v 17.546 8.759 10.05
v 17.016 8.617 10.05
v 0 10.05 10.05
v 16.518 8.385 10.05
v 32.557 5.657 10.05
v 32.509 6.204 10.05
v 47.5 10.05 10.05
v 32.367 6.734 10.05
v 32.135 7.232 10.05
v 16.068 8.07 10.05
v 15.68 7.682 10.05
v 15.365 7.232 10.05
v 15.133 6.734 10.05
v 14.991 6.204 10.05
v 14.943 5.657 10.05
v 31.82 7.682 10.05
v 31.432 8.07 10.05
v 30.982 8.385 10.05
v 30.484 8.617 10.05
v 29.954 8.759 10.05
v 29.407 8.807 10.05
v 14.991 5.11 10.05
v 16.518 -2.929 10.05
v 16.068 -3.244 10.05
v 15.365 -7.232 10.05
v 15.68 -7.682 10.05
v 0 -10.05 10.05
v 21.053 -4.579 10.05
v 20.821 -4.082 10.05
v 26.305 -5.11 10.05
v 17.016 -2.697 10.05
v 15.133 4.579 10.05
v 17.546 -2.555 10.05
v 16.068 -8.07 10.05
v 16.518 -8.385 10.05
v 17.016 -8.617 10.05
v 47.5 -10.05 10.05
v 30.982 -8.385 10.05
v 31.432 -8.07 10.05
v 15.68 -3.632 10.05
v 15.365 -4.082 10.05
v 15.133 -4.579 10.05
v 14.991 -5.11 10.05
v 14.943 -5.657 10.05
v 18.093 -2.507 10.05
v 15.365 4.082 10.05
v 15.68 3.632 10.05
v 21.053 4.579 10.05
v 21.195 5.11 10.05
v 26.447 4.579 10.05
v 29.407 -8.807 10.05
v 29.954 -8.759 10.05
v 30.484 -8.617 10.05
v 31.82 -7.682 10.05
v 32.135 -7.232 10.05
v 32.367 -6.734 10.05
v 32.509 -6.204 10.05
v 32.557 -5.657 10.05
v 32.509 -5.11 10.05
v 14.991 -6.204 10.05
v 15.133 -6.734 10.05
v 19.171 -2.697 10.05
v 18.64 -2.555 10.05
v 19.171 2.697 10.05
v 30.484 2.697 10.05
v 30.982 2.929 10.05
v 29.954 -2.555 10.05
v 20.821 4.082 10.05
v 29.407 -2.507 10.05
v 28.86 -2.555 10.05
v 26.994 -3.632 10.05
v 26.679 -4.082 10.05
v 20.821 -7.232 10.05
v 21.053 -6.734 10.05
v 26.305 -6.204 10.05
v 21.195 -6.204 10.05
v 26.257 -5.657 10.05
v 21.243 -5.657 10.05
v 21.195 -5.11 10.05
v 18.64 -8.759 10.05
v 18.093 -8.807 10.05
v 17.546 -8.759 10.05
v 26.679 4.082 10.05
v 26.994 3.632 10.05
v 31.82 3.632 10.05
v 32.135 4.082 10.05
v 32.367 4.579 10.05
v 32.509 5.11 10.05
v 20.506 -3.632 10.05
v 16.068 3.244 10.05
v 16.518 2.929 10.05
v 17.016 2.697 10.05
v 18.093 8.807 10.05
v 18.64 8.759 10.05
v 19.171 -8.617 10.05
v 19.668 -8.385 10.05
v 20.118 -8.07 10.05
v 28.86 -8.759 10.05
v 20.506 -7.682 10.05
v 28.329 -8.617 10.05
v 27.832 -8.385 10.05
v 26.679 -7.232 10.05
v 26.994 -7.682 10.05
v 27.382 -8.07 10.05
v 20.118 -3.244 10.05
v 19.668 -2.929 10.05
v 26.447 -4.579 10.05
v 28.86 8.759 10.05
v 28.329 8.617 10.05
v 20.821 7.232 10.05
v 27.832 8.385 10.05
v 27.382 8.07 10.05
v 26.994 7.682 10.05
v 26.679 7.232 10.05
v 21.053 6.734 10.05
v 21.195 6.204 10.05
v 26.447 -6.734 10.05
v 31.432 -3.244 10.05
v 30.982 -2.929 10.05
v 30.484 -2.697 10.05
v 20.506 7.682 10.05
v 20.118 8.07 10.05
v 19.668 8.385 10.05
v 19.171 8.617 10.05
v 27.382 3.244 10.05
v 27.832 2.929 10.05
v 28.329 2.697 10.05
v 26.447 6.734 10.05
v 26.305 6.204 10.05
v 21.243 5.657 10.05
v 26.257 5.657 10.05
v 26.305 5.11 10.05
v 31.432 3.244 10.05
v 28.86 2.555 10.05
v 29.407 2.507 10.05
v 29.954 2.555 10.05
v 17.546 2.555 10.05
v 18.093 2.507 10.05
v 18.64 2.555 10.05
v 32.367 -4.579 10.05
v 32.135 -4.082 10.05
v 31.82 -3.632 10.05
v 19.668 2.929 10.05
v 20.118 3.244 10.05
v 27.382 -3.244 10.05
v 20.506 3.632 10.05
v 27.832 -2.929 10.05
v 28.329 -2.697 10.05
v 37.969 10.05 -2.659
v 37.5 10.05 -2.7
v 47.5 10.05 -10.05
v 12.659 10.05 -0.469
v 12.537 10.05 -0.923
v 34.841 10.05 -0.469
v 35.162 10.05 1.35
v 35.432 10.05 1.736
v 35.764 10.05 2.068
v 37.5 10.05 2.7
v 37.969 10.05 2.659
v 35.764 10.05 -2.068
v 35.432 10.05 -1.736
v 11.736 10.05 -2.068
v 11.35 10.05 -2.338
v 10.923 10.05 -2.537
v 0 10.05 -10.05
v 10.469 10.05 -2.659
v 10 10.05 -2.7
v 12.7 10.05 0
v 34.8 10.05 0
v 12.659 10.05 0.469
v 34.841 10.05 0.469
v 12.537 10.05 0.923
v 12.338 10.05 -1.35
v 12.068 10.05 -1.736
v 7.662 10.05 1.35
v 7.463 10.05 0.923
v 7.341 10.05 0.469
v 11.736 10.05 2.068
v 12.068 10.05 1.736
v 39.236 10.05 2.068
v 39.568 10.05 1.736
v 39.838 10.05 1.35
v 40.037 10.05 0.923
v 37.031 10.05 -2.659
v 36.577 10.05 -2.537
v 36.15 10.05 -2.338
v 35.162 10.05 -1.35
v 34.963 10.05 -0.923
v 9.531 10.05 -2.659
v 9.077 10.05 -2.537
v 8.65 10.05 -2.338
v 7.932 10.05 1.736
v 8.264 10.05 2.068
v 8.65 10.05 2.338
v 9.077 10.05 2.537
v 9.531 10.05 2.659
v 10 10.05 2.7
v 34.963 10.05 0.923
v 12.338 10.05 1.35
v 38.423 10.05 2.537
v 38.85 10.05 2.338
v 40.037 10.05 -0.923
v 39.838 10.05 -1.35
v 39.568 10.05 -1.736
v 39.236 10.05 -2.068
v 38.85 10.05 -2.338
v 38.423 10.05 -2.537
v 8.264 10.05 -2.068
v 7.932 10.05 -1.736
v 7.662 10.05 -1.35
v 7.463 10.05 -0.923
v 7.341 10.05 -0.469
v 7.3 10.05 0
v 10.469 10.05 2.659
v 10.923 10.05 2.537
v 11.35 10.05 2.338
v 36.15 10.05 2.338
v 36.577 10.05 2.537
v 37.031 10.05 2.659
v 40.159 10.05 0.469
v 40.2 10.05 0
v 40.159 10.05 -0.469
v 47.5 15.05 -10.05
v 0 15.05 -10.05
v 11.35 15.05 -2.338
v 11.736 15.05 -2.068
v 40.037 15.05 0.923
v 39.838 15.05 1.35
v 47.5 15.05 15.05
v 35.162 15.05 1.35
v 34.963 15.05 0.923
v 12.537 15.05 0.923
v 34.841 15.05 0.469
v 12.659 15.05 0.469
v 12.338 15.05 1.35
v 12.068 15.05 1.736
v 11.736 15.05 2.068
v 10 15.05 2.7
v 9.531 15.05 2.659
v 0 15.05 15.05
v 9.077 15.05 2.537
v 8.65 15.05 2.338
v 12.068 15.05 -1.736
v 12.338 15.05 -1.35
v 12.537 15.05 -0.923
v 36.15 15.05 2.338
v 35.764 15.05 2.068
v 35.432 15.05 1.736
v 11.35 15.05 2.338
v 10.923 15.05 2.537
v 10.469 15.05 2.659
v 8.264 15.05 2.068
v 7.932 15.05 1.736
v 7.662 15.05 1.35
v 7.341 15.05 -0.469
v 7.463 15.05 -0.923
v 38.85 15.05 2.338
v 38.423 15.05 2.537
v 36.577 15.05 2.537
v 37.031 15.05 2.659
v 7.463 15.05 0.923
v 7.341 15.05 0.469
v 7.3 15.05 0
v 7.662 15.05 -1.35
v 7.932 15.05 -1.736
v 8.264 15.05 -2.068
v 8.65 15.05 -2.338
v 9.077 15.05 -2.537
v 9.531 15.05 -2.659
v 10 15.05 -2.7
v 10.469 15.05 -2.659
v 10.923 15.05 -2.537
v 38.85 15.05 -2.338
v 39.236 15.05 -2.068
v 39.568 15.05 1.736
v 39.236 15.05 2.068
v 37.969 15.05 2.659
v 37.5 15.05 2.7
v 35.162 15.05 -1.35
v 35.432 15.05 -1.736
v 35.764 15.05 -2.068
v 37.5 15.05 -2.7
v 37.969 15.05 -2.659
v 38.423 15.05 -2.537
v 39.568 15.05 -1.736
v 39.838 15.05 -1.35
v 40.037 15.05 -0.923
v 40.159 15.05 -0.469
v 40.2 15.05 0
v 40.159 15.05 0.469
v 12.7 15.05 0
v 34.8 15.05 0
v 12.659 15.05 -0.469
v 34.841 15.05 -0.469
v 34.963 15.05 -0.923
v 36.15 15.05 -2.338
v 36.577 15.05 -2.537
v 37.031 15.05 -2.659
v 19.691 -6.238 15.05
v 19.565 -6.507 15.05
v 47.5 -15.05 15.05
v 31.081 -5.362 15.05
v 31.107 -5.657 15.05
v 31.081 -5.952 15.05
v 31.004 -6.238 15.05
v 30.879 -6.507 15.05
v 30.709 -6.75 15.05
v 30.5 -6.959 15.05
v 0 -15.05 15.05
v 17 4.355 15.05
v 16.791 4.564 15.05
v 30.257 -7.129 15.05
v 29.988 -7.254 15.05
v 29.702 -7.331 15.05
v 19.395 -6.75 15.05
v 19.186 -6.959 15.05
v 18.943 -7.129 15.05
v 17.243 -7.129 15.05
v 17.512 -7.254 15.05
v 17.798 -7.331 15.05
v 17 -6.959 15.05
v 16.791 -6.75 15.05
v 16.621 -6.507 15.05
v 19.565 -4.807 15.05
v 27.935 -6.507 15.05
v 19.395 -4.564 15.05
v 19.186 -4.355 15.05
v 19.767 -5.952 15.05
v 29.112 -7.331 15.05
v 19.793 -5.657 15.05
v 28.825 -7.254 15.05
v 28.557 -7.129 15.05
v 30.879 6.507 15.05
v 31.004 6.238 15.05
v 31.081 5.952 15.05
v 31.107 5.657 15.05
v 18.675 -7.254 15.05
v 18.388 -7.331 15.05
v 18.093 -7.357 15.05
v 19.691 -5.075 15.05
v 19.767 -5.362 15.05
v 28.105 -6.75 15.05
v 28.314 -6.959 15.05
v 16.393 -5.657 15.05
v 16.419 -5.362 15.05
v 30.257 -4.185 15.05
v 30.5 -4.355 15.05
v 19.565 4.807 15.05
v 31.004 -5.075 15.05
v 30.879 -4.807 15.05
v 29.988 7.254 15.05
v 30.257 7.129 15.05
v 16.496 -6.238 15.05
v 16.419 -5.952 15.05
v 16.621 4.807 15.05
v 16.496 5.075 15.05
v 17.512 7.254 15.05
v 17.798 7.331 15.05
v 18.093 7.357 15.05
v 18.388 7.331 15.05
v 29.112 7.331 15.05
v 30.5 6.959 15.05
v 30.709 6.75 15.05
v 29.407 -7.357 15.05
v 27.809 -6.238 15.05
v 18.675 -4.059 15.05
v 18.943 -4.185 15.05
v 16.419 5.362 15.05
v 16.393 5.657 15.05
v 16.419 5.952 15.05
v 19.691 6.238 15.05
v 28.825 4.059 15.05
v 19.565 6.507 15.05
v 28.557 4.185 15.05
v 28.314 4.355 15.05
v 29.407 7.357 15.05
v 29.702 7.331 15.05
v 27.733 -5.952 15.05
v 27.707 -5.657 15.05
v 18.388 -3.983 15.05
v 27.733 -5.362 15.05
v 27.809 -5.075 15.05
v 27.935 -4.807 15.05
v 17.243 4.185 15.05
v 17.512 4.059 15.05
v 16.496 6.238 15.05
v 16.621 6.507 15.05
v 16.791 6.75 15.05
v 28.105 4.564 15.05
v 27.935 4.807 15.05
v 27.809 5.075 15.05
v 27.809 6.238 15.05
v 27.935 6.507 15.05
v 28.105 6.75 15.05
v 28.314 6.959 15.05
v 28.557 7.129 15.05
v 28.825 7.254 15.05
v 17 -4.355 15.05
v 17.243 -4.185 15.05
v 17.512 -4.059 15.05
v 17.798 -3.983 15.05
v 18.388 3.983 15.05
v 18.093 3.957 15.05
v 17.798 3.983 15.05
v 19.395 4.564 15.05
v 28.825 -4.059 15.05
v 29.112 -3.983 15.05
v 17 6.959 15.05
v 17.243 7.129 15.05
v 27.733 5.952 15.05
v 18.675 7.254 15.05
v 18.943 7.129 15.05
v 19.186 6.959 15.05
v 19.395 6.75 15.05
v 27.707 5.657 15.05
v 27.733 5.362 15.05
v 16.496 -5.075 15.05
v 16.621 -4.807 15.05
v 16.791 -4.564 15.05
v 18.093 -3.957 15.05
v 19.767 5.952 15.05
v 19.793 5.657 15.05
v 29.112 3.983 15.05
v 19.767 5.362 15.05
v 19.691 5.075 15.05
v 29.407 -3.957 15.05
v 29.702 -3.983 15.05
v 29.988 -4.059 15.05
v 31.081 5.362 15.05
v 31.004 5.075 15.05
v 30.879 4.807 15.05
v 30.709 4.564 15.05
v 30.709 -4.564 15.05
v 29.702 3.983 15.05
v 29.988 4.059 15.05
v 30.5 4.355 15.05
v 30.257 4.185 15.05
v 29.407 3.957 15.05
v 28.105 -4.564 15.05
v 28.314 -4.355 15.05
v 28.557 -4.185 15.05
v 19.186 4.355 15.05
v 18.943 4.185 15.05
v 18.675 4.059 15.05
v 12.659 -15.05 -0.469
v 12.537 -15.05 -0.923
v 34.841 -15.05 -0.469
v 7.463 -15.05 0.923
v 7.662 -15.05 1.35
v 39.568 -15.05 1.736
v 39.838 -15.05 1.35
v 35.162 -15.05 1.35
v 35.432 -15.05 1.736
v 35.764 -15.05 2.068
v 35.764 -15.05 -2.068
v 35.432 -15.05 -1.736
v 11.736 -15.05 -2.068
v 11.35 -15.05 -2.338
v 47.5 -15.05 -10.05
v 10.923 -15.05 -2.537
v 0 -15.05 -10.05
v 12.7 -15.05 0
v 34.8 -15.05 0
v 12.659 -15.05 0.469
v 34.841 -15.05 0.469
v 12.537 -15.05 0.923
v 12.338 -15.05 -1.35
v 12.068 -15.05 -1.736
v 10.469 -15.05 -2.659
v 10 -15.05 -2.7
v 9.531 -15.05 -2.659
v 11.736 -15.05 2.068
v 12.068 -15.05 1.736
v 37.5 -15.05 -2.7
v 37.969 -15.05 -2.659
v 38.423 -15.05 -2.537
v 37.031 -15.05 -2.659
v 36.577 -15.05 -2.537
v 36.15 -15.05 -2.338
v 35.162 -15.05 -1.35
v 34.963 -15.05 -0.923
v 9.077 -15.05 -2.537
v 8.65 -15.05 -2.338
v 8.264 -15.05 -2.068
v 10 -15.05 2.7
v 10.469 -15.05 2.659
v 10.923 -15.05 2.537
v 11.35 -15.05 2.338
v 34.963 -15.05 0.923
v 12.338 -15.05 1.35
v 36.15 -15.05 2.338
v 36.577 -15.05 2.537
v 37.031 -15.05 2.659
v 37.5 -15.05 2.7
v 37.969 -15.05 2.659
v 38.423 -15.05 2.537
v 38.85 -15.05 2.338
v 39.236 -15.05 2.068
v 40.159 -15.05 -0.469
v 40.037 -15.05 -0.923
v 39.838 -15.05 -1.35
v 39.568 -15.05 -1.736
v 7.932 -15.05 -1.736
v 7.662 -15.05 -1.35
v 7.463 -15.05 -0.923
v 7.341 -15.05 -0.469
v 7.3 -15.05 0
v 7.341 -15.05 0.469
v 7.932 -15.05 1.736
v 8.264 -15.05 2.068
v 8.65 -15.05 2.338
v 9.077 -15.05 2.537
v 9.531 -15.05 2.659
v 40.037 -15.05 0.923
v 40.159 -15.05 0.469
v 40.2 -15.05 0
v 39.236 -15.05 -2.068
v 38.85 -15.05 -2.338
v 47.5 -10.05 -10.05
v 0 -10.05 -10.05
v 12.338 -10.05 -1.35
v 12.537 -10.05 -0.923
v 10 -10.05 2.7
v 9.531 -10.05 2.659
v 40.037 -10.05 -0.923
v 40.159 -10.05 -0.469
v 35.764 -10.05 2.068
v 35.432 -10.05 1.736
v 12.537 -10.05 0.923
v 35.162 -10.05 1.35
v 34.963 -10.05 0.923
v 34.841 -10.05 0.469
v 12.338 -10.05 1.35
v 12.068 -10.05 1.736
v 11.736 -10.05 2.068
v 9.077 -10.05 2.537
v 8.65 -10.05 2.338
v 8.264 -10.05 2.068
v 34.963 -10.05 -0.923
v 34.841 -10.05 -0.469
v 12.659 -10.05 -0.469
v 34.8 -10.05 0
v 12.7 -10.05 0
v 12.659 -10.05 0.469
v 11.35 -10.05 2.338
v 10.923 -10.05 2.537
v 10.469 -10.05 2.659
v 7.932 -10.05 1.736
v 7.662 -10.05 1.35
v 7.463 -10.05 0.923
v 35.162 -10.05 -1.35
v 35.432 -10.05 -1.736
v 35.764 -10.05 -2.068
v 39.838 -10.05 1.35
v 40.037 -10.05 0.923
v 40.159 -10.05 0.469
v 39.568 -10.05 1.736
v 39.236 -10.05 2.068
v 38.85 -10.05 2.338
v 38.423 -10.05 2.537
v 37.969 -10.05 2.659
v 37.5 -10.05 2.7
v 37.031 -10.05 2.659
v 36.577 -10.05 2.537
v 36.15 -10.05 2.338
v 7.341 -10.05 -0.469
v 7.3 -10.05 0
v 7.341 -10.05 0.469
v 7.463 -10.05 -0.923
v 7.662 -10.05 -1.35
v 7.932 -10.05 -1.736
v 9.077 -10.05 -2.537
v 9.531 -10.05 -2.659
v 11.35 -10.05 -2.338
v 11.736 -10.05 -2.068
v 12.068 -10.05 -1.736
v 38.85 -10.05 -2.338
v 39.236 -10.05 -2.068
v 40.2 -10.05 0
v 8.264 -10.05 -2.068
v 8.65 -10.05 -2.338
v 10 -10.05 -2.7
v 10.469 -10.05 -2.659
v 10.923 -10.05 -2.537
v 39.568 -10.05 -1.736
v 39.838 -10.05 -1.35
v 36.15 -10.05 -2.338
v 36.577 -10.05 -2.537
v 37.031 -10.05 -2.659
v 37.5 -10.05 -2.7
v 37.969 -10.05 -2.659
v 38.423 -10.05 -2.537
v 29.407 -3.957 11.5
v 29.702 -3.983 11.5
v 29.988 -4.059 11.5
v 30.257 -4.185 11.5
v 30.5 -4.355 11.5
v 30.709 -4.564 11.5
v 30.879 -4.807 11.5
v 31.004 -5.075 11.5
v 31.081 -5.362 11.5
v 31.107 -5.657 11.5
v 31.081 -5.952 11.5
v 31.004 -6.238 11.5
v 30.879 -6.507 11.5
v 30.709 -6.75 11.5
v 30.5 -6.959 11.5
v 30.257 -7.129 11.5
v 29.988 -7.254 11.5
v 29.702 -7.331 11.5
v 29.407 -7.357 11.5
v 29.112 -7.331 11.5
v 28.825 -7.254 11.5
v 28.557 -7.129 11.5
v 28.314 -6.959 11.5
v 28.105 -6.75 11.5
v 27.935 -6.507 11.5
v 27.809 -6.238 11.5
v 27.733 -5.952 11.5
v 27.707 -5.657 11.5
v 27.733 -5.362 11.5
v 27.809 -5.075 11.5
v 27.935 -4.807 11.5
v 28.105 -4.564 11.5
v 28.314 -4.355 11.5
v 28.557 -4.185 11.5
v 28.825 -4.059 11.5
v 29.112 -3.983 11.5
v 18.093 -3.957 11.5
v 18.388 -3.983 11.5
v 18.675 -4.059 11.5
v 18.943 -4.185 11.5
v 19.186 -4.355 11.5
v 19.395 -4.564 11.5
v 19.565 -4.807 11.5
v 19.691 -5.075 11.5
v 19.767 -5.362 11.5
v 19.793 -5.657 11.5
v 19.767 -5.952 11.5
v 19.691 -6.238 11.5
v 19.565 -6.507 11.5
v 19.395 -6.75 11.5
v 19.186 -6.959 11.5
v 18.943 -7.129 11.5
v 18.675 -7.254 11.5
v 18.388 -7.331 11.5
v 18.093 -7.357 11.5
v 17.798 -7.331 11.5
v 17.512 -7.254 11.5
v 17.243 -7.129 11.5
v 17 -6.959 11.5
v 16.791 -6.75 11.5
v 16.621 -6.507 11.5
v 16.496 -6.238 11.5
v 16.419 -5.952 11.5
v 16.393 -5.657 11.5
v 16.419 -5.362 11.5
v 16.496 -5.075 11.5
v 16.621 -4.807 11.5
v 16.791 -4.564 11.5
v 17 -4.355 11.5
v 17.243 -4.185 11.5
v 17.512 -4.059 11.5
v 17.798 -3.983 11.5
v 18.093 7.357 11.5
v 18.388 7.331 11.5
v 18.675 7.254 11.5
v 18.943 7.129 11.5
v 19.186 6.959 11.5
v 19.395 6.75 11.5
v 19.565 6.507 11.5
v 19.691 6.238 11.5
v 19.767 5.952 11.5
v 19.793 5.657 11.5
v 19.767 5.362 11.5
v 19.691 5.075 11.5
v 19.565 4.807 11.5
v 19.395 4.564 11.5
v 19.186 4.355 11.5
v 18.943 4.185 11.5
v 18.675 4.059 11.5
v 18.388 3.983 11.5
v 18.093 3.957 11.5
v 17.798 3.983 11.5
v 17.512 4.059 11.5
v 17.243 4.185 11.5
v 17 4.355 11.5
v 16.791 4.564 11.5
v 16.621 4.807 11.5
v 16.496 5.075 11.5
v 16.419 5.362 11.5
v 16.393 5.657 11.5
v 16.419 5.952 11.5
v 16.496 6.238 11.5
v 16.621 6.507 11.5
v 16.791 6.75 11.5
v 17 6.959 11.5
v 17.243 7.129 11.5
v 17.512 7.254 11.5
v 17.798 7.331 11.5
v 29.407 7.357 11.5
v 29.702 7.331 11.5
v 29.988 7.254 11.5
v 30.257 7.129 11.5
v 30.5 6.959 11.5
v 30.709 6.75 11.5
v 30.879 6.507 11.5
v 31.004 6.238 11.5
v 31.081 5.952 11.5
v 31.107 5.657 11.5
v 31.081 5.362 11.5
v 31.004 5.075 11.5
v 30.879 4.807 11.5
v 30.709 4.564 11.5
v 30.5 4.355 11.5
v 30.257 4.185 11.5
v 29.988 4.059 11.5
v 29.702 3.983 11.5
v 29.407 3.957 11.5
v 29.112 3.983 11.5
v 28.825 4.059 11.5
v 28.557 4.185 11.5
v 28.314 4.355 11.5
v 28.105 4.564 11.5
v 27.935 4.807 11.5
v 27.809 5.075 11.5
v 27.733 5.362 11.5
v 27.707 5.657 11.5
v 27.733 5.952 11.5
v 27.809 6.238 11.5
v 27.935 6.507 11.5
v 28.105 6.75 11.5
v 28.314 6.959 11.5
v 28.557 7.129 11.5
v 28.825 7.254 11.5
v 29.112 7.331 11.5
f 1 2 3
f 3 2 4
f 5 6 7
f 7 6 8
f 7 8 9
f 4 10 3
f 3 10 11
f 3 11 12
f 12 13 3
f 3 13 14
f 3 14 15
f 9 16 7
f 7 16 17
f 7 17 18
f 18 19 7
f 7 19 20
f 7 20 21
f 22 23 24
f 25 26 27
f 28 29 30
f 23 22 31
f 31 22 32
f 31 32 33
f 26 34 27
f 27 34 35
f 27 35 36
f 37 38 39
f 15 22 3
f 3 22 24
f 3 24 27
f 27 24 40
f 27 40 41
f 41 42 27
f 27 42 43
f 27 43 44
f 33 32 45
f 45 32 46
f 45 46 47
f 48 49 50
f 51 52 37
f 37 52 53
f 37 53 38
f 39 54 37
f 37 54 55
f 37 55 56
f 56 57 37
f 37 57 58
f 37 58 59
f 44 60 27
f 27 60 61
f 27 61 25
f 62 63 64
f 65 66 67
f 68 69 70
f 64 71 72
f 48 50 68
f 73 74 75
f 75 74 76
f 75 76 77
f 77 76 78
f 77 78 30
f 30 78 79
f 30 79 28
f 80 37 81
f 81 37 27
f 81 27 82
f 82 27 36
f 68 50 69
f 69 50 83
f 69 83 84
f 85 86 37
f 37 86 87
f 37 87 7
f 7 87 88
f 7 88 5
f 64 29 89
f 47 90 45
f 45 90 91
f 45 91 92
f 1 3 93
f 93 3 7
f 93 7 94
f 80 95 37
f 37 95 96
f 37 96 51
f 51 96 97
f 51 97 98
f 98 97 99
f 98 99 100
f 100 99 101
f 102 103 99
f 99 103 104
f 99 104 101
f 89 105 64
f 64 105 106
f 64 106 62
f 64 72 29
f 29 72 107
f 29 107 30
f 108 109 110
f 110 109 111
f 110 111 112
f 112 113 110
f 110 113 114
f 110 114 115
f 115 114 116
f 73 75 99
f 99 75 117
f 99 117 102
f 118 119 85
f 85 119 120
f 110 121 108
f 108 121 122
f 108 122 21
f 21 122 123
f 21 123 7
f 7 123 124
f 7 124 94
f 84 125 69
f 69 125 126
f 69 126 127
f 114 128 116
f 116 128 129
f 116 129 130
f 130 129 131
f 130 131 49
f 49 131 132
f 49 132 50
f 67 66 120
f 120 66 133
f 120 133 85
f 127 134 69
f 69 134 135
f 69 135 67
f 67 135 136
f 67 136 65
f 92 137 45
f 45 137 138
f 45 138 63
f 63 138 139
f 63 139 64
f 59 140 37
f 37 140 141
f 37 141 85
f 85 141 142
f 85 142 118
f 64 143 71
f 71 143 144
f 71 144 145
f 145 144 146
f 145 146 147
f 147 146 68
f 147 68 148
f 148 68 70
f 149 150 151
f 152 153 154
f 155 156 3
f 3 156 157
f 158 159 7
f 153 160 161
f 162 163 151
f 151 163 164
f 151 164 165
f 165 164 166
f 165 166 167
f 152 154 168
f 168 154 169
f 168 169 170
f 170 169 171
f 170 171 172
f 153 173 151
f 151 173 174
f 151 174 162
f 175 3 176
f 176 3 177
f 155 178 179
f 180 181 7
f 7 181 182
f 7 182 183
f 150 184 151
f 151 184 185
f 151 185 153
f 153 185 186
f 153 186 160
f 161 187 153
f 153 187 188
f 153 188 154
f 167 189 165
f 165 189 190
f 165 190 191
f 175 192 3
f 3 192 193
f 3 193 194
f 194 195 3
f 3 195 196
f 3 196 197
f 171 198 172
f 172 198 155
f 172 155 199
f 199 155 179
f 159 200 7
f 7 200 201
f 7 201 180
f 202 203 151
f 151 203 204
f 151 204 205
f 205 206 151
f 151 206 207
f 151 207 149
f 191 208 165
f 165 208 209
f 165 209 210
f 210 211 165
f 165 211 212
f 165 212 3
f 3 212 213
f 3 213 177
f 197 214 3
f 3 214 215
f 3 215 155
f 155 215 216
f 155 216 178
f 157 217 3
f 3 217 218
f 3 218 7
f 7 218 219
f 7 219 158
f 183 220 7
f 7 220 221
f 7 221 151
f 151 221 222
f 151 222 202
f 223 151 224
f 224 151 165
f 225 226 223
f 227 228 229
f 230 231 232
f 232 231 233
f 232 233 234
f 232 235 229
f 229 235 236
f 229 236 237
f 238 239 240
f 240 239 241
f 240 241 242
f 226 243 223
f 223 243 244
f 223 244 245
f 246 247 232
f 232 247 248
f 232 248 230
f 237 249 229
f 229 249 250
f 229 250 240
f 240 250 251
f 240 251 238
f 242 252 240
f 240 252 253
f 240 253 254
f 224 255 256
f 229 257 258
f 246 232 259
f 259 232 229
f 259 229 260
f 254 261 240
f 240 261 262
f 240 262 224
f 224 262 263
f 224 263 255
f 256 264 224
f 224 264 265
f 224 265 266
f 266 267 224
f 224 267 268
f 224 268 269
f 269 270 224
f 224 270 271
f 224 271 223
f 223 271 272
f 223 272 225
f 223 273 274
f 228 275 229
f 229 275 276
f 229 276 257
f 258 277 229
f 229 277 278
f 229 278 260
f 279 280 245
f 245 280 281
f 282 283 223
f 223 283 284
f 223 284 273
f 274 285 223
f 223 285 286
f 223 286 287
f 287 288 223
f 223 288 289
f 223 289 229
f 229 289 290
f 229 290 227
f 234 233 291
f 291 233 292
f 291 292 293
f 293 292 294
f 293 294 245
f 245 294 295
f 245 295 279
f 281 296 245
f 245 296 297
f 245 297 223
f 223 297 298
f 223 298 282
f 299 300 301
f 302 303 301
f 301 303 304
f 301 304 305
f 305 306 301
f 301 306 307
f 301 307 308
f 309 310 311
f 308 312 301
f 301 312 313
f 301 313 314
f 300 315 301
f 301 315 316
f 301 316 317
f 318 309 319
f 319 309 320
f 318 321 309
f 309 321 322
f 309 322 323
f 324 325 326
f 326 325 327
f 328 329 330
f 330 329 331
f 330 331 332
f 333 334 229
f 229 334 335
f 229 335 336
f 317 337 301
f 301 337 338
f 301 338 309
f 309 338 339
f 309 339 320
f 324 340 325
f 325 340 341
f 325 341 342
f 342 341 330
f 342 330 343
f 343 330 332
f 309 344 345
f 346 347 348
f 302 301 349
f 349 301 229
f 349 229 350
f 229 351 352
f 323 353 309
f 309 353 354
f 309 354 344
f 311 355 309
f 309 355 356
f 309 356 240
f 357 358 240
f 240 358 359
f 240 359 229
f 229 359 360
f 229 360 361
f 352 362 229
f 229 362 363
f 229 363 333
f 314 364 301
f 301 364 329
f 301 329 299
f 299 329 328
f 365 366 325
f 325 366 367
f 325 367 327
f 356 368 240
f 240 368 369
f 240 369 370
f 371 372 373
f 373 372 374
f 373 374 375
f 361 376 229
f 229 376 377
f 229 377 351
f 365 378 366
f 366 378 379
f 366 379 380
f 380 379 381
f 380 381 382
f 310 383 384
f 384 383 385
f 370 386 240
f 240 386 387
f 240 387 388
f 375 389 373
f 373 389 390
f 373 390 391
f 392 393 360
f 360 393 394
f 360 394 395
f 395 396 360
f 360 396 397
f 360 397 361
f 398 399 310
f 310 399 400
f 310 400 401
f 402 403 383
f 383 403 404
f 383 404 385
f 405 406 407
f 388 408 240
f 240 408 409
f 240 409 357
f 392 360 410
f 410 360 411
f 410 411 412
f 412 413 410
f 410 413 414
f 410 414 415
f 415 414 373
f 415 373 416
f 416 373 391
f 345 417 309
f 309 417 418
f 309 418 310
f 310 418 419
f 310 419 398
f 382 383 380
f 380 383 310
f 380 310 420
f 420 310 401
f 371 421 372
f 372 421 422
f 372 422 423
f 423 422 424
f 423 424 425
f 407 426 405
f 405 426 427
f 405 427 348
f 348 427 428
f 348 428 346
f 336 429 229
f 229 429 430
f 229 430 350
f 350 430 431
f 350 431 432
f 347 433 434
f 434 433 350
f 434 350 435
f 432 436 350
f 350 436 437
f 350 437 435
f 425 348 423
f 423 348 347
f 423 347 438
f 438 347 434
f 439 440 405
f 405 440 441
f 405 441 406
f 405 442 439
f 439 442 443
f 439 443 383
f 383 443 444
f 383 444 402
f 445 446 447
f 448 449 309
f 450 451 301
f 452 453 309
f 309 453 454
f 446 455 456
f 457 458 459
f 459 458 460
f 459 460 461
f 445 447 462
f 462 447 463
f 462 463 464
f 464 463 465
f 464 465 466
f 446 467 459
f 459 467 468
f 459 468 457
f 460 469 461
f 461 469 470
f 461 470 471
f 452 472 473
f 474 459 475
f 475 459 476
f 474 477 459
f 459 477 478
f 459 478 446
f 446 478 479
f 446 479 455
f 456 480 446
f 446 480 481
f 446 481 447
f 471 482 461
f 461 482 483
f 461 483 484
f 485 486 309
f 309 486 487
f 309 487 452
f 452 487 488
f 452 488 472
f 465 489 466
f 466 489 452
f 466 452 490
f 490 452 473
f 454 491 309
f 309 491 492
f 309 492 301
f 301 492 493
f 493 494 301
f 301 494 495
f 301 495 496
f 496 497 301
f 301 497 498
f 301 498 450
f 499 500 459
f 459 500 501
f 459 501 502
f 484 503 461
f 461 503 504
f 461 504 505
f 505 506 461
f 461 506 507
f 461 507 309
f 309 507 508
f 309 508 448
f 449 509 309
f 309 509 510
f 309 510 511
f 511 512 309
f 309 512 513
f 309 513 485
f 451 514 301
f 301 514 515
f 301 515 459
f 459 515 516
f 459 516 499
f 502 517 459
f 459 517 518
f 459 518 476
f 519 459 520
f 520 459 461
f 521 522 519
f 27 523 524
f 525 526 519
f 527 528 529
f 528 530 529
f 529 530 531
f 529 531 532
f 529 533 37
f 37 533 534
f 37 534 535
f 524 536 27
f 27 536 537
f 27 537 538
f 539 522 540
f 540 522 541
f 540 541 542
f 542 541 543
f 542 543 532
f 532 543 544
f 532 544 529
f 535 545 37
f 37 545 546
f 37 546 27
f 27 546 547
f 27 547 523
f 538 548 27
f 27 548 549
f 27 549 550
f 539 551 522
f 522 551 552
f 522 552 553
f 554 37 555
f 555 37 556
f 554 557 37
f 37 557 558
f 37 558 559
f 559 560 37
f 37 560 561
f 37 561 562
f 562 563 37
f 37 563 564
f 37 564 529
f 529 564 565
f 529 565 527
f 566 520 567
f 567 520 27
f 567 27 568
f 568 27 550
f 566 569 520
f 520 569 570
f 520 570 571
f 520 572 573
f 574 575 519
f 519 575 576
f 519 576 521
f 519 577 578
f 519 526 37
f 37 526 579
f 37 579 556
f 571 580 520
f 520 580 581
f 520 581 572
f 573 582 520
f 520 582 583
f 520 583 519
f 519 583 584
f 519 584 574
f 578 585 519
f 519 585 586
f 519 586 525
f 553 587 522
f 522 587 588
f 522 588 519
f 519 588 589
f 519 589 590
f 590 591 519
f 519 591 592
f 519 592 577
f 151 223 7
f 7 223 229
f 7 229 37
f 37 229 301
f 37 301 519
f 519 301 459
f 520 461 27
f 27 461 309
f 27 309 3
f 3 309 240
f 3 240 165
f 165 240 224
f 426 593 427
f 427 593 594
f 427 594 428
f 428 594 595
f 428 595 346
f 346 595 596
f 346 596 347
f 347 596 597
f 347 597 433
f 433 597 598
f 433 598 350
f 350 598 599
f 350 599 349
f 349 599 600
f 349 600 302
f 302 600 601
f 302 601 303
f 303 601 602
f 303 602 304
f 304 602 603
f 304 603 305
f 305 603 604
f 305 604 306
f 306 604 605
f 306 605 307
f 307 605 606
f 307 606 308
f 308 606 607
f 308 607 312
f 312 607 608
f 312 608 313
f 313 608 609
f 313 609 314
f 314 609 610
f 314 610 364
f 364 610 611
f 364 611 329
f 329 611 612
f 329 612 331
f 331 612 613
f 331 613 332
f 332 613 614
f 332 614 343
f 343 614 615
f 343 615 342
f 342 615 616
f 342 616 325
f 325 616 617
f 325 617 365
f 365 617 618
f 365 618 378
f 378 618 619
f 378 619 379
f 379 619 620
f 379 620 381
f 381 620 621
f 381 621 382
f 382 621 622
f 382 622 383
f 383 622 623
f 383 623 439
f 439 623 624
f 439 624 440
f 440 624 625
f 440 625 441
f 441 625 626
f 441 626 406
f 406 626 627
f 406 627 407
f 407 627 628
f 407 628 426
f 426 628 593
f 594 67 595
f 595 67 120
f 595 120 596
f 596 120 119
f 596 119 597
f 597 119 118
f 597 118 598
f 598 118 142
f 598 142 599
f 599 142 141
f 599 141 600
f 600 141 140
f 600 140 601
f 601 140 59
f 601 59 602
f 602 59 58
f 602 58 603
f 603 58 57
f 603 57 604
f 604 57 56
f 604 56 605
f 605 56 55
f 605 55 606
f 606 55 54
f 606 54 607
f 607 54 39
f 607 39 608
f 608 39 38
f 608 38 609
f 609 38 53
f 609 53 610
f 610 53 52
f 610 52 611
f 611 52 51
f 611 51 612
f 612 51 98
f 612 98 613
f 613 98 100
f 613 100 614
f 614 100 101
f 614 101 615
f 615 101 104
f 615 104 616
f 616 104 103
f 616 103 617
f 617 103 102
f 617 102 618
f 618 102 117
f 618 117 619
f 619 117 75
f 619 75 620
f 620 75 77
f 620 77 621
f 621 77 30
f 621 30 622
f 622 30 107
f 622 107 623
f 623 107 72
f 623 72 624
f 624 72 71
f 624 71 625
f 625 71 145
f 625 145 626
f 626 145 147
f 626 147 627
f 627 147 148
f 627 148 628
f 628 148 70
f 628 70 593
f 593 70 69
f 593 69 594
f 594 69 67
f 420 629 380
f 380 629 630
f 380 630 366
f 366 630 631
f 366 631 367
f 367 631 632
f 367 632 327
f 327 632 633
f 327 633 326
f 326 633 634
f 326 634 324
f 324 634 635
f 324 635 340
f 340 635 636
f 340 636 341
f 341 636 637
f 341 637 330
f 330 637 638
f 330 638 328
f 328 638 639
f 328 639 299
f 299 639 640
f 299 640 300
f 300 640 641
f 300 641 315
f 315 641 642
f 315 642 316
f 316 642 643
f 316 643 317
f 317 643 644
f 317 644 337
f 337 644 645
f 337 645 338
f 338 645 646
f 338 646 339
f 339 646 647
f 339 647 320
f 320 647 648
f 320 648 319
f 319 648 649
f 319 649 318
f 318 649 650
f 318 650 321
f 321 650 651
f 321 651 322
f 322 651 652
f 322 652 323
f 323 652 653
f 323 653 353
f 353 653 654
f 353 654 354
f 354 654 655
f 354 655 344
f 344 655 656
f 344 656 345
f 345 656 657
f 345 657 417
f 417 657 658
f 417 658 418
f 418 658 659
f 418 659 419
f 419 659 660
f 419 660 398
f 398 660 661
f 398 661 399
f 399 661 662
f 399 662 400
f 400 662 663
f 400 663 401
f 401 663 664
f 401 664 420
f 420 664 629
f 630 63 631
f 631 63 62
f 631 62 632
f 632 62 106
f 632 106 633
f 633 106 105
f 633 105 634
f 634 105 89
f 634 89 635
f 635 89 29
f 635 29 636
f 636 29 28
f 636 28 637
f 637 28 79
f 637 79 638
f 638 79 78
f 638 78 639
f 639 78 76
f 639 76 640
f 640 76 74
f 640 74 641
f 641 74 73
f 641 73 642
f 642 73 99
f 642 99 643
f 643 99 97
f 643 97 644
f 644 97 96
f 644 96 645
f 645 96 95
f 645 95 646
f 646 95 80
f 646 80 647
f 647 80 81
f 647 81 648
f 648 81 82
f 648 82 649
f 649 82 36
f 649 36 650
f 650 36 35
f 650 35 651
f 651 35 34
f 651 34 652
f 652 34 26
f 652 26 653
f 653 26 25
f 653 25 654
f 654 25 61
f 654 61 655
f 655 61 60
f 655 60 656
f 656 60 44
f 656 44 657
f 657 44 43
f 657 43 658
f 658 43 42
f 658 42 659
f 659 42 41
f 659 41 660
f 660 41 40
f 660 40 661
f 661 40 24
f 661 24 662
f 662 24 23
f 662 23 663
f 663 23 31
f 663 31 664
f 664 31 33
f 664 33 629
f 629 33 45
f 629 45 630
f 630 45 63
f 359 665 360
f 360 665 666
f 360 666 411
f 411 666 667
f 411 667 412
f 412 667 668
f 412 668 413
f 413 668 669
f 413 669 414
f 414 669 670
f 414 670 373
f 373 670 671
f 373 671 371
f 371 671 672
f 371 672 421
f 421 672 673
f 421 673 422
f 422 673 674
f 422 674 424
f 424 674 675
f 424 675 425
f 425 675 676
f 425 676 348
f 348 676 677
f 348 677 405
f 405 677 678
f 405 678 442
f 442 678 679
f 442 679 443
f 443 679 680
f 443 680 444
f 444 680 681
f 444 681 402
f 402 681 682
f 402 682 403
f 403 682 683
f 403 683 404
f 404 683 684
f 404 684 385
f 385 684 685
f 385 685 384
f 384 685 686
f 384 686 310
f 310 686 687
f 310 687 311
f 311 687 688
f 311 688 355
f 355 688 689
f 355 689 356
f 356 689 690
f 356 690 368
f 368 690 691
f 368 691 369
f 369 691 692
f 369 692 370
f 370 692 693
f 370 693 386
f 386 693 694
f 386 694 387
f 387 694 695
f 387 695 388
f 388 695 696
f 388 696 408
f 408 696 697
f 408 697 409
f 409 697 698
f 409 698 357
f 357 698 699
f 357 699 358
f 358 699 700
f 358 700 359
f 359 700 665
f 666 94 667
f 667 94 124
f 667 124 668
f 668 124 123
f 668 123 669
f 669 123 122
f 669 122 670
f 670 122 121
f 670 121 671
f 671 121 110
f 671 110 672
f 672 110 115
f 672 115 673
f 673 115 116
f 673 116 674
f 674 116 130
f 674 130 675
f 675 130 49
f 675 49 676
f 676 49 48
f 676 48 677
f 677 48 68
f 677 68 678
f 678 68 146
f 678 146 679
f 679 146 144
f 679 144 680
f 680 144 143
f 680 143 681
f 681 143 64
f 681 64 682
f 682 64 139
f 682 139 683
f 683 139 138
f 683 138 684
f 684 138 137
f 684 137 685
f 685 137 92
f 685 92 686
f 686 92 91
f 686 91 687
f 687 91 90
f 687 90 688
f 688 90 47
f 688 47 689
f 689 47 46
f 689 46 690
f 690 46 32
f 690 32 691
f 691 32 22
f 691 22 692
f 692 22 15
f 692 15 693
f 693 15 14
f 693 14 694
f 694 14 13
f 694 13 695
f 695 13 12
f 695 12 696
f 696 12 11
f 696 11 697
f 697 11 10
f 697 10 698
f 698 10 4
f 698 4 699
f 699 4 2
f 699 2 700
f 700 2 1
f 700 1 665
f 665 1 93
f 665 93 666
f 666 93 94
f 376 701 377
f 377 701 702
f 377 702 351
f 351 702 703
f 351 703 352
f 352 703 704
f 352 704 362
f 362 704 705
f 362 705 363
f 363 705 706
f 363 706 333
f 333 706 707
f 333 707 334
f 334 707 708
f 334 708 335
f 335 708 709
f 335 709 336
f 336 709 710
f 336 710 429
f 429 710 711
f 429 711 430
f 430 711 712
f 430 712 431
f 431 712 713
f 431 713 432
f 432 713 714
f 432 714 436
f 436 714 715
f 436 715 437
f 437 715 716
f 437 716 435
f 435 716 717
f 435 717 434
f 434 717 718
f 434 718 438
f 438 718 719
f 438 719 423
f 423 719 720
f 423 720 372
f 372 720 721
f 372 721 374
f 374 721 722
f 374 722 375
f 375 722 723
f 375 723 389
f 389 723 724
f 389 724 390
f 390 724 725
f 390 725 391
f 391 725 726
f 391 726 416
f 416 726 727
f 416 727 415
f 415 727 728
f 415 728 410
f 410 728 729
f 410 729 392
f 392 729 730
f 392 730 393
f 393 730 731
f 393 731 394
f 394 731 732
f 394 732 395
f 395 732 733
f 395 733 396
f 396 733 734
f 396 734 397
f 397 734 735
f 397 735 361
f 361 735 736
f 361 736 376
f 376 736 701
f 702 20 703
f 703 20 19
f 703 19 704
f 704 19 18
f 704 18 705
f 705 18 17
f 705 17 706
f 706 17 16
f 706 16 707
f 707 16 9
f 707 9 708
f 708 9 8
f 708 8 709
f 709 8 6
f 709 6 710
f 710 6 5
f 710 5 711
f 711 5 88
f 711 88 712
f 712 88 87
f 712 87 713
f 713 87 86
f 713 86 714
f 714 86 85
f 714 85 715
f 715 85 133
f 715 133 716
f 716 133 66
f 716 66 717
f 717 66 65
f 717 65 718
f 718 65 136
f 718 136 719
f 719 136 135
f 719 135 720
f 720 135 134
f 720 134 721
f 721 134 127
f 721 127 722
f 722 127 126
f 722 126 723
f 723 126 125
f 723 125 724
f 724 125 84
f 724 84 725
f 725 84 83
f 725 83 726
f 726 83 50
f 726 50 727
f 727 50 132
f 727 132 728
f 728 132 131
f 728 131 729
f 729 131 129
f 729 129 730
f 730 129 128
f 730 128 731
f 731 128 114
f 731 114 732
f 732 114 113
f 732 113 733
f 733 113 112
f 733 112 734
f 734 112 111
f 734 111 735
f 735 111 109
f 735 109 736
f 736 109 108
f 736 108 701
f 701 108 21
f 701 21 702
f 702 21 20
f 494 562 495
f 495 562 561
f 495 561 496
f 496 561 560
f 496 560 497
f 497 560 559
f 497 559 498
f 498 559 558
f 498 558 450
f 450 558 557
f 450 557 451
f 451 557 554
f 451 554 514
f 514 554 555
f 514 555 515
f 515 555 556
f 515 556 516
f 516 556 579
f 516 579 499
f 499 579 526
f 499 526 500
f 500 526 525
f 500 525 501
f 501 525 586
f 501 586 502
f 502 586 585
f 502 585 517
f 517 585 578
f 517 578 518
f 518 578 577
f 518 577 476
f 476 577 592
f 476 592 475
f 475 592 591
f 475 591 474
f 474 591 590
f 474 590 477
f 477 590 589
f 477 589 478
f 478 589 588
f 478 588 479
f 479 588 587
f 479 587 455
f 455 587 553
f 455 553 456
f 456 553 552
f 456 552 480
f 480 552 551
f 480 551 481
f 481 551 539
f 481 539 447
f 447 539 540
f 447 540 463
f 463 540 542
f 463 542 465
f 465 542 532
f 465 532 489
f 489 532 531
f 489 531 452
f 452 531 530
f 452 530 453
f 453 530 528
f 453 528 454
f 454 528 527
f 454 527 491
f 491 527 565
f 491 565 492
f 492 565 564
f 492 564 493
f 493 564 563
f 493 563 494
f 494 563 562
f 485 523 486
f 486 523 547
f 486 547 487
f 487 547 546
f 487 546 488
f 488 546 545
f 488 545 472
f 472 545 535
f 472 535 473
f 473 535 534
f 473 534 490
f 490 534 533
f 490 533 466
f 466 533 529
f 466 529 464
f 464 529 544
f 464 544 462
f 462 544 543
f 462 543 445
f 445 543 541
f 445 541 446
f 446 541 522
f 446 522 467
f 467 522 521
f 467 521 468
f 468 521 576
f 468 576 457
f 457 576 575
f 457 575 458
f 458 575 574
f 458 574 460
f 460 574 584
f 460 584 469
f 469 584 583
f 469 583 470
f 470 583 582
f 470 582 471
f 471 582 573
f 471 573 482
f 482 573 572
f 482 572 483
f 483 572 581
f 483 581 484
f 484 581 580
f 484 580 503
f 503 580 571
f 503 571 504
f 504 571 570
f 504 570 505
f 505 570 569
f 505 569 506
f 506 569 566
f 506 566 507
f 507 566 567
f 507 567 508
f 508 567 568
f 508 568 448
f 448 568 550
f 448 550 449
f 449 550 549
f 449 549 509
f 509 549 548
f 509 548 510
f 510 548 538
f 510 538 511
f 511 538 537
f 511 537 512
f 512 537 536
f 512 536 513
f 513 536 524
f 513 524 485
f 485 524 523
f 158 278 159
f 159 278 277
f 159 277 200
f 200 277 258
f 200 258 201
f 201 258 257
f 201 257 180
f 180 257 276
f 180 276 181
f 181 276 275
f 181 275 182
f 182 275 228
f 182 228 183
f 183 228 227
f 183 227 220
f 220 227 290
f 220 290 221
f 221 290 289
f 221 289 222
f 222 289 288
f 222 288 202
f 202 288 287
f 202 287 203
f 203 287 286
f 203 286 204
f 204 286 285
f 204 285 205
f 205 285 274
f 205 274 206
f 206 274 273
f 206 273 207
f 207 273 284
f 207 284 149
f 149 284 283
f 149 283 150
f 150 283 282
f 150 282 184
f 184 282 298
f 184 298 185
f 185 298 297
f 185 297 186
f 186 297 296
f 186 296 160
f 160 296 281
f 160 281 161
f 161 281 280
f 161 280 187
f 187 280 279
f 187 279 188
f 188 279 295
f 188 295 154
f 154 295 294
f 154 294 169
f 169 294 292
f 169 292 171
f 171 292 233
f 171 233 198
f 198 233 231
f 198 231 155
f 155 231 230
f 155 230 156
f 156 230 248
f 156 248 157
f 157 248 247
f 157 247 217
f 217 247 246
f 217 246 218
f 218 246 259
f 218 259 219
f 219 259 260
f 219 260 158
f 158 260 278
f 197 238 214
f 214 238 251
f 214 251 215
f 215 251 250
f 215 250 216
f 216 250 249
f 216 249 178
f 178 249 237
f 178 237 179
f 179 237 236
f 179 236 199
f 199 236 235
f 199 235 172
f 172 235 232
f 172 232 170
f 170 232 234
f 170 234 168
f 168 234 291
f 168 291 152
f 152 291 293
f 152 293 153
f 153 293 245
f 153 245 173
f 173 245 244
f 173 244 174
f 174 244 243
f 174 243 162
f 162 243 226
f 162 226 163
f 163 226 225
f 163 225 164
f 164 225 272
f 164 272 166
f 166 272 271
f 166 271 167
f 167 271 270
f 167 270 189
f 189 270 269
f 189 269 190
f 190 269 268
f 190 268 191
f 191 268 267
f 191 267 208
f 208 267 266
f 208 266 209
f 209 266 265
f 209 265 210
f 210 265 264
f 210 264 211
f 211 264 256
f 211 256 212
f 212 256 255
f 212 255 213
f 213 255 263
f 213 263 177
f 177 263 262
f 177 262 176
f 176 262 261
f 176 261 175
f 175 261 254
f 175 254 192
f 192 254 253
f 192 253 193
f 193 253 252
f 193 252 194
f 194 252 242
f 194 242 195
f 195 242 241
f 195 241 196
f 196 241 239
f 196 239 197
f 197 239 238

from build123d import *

# Parameters (mm, degrees)
BOSS_EXTRUDE1_DEPTH                             = 47.5
CSK_FOR_M3_FLAT_HEAD_MACHINE_SCREW1_D           = 3.4
CSK_FOR_M3_FLAT_HEAD_MACHINE_SCREW1_CSINK_D     = 6.3
CSK_FOR_M3_FLAT_HEAD_MACHINE_SCREW1_CSINK_ANGLE = 90
SKETCH5_R                                       = 2.7
CUT_EXTRUDE1_DEPTH                              = 31.1


with BuildPart() as part:
    # Sketch1 → Boss-Extrude1 (new body)
    with BuildSketch(Plane(origin=(0, 0, 0), x_dir=(0, 0, -1), z_dir=(1, 0, 0))):
        Polygon((10.05, -10.05), (10.05, -15.05), (-15.05, -15.05), (-15.05, 15.05), (10.05, 15.05), (10.05, 10.05), (-10.05, 10.05), (-10.05, -10.05), align=None)
    extrude(amount=BOSS_EXTRUDE1_DEPTH)

    # CSK for M3 Flat Head Machine Screw1 (through all)
    with Locations(Plane(origin=(0, 0, 10.05), x_dir=(-1, 0, 0), z_dir=(0, 0, -1))):
        with Locations((-29.406854249, 5.656854249), (-18.093145751, 5.656854249), (-18.093145751, -5.656854249), (-29.406854249, -5.656854249)):
            CounterSinkHole(CSK_FOR_M3_FLAT_HEAD_MACHINE_SCREW1_D / 2, CSK_FOR_M3_FLAT_HEAD_MACHINE_SCREW1_CSINK_D / 2, counter_sink_angle=CSK_FOR_M3_FLAT_HEAD_MACHINE_SCREW1_CSINK_ANGLE)

    # Sketch5 → Cut-Extrude1 (cut, through all)
    with BuildSketch(Plane(origin=(0, 15.05, 0), x_dir=(1, 0, 0), z_dir=(0, 1, 0))):
        with Locations((10, 0)):
            Circle(SKETCH5_R)
        with Locations((37.5, 0)):
            Circle(SKETCH5_R)
    extrude(amount=-CUT_EXTRUDE1_DEPTH, mode=Mode.SUBTRACT)


solid = part.part
